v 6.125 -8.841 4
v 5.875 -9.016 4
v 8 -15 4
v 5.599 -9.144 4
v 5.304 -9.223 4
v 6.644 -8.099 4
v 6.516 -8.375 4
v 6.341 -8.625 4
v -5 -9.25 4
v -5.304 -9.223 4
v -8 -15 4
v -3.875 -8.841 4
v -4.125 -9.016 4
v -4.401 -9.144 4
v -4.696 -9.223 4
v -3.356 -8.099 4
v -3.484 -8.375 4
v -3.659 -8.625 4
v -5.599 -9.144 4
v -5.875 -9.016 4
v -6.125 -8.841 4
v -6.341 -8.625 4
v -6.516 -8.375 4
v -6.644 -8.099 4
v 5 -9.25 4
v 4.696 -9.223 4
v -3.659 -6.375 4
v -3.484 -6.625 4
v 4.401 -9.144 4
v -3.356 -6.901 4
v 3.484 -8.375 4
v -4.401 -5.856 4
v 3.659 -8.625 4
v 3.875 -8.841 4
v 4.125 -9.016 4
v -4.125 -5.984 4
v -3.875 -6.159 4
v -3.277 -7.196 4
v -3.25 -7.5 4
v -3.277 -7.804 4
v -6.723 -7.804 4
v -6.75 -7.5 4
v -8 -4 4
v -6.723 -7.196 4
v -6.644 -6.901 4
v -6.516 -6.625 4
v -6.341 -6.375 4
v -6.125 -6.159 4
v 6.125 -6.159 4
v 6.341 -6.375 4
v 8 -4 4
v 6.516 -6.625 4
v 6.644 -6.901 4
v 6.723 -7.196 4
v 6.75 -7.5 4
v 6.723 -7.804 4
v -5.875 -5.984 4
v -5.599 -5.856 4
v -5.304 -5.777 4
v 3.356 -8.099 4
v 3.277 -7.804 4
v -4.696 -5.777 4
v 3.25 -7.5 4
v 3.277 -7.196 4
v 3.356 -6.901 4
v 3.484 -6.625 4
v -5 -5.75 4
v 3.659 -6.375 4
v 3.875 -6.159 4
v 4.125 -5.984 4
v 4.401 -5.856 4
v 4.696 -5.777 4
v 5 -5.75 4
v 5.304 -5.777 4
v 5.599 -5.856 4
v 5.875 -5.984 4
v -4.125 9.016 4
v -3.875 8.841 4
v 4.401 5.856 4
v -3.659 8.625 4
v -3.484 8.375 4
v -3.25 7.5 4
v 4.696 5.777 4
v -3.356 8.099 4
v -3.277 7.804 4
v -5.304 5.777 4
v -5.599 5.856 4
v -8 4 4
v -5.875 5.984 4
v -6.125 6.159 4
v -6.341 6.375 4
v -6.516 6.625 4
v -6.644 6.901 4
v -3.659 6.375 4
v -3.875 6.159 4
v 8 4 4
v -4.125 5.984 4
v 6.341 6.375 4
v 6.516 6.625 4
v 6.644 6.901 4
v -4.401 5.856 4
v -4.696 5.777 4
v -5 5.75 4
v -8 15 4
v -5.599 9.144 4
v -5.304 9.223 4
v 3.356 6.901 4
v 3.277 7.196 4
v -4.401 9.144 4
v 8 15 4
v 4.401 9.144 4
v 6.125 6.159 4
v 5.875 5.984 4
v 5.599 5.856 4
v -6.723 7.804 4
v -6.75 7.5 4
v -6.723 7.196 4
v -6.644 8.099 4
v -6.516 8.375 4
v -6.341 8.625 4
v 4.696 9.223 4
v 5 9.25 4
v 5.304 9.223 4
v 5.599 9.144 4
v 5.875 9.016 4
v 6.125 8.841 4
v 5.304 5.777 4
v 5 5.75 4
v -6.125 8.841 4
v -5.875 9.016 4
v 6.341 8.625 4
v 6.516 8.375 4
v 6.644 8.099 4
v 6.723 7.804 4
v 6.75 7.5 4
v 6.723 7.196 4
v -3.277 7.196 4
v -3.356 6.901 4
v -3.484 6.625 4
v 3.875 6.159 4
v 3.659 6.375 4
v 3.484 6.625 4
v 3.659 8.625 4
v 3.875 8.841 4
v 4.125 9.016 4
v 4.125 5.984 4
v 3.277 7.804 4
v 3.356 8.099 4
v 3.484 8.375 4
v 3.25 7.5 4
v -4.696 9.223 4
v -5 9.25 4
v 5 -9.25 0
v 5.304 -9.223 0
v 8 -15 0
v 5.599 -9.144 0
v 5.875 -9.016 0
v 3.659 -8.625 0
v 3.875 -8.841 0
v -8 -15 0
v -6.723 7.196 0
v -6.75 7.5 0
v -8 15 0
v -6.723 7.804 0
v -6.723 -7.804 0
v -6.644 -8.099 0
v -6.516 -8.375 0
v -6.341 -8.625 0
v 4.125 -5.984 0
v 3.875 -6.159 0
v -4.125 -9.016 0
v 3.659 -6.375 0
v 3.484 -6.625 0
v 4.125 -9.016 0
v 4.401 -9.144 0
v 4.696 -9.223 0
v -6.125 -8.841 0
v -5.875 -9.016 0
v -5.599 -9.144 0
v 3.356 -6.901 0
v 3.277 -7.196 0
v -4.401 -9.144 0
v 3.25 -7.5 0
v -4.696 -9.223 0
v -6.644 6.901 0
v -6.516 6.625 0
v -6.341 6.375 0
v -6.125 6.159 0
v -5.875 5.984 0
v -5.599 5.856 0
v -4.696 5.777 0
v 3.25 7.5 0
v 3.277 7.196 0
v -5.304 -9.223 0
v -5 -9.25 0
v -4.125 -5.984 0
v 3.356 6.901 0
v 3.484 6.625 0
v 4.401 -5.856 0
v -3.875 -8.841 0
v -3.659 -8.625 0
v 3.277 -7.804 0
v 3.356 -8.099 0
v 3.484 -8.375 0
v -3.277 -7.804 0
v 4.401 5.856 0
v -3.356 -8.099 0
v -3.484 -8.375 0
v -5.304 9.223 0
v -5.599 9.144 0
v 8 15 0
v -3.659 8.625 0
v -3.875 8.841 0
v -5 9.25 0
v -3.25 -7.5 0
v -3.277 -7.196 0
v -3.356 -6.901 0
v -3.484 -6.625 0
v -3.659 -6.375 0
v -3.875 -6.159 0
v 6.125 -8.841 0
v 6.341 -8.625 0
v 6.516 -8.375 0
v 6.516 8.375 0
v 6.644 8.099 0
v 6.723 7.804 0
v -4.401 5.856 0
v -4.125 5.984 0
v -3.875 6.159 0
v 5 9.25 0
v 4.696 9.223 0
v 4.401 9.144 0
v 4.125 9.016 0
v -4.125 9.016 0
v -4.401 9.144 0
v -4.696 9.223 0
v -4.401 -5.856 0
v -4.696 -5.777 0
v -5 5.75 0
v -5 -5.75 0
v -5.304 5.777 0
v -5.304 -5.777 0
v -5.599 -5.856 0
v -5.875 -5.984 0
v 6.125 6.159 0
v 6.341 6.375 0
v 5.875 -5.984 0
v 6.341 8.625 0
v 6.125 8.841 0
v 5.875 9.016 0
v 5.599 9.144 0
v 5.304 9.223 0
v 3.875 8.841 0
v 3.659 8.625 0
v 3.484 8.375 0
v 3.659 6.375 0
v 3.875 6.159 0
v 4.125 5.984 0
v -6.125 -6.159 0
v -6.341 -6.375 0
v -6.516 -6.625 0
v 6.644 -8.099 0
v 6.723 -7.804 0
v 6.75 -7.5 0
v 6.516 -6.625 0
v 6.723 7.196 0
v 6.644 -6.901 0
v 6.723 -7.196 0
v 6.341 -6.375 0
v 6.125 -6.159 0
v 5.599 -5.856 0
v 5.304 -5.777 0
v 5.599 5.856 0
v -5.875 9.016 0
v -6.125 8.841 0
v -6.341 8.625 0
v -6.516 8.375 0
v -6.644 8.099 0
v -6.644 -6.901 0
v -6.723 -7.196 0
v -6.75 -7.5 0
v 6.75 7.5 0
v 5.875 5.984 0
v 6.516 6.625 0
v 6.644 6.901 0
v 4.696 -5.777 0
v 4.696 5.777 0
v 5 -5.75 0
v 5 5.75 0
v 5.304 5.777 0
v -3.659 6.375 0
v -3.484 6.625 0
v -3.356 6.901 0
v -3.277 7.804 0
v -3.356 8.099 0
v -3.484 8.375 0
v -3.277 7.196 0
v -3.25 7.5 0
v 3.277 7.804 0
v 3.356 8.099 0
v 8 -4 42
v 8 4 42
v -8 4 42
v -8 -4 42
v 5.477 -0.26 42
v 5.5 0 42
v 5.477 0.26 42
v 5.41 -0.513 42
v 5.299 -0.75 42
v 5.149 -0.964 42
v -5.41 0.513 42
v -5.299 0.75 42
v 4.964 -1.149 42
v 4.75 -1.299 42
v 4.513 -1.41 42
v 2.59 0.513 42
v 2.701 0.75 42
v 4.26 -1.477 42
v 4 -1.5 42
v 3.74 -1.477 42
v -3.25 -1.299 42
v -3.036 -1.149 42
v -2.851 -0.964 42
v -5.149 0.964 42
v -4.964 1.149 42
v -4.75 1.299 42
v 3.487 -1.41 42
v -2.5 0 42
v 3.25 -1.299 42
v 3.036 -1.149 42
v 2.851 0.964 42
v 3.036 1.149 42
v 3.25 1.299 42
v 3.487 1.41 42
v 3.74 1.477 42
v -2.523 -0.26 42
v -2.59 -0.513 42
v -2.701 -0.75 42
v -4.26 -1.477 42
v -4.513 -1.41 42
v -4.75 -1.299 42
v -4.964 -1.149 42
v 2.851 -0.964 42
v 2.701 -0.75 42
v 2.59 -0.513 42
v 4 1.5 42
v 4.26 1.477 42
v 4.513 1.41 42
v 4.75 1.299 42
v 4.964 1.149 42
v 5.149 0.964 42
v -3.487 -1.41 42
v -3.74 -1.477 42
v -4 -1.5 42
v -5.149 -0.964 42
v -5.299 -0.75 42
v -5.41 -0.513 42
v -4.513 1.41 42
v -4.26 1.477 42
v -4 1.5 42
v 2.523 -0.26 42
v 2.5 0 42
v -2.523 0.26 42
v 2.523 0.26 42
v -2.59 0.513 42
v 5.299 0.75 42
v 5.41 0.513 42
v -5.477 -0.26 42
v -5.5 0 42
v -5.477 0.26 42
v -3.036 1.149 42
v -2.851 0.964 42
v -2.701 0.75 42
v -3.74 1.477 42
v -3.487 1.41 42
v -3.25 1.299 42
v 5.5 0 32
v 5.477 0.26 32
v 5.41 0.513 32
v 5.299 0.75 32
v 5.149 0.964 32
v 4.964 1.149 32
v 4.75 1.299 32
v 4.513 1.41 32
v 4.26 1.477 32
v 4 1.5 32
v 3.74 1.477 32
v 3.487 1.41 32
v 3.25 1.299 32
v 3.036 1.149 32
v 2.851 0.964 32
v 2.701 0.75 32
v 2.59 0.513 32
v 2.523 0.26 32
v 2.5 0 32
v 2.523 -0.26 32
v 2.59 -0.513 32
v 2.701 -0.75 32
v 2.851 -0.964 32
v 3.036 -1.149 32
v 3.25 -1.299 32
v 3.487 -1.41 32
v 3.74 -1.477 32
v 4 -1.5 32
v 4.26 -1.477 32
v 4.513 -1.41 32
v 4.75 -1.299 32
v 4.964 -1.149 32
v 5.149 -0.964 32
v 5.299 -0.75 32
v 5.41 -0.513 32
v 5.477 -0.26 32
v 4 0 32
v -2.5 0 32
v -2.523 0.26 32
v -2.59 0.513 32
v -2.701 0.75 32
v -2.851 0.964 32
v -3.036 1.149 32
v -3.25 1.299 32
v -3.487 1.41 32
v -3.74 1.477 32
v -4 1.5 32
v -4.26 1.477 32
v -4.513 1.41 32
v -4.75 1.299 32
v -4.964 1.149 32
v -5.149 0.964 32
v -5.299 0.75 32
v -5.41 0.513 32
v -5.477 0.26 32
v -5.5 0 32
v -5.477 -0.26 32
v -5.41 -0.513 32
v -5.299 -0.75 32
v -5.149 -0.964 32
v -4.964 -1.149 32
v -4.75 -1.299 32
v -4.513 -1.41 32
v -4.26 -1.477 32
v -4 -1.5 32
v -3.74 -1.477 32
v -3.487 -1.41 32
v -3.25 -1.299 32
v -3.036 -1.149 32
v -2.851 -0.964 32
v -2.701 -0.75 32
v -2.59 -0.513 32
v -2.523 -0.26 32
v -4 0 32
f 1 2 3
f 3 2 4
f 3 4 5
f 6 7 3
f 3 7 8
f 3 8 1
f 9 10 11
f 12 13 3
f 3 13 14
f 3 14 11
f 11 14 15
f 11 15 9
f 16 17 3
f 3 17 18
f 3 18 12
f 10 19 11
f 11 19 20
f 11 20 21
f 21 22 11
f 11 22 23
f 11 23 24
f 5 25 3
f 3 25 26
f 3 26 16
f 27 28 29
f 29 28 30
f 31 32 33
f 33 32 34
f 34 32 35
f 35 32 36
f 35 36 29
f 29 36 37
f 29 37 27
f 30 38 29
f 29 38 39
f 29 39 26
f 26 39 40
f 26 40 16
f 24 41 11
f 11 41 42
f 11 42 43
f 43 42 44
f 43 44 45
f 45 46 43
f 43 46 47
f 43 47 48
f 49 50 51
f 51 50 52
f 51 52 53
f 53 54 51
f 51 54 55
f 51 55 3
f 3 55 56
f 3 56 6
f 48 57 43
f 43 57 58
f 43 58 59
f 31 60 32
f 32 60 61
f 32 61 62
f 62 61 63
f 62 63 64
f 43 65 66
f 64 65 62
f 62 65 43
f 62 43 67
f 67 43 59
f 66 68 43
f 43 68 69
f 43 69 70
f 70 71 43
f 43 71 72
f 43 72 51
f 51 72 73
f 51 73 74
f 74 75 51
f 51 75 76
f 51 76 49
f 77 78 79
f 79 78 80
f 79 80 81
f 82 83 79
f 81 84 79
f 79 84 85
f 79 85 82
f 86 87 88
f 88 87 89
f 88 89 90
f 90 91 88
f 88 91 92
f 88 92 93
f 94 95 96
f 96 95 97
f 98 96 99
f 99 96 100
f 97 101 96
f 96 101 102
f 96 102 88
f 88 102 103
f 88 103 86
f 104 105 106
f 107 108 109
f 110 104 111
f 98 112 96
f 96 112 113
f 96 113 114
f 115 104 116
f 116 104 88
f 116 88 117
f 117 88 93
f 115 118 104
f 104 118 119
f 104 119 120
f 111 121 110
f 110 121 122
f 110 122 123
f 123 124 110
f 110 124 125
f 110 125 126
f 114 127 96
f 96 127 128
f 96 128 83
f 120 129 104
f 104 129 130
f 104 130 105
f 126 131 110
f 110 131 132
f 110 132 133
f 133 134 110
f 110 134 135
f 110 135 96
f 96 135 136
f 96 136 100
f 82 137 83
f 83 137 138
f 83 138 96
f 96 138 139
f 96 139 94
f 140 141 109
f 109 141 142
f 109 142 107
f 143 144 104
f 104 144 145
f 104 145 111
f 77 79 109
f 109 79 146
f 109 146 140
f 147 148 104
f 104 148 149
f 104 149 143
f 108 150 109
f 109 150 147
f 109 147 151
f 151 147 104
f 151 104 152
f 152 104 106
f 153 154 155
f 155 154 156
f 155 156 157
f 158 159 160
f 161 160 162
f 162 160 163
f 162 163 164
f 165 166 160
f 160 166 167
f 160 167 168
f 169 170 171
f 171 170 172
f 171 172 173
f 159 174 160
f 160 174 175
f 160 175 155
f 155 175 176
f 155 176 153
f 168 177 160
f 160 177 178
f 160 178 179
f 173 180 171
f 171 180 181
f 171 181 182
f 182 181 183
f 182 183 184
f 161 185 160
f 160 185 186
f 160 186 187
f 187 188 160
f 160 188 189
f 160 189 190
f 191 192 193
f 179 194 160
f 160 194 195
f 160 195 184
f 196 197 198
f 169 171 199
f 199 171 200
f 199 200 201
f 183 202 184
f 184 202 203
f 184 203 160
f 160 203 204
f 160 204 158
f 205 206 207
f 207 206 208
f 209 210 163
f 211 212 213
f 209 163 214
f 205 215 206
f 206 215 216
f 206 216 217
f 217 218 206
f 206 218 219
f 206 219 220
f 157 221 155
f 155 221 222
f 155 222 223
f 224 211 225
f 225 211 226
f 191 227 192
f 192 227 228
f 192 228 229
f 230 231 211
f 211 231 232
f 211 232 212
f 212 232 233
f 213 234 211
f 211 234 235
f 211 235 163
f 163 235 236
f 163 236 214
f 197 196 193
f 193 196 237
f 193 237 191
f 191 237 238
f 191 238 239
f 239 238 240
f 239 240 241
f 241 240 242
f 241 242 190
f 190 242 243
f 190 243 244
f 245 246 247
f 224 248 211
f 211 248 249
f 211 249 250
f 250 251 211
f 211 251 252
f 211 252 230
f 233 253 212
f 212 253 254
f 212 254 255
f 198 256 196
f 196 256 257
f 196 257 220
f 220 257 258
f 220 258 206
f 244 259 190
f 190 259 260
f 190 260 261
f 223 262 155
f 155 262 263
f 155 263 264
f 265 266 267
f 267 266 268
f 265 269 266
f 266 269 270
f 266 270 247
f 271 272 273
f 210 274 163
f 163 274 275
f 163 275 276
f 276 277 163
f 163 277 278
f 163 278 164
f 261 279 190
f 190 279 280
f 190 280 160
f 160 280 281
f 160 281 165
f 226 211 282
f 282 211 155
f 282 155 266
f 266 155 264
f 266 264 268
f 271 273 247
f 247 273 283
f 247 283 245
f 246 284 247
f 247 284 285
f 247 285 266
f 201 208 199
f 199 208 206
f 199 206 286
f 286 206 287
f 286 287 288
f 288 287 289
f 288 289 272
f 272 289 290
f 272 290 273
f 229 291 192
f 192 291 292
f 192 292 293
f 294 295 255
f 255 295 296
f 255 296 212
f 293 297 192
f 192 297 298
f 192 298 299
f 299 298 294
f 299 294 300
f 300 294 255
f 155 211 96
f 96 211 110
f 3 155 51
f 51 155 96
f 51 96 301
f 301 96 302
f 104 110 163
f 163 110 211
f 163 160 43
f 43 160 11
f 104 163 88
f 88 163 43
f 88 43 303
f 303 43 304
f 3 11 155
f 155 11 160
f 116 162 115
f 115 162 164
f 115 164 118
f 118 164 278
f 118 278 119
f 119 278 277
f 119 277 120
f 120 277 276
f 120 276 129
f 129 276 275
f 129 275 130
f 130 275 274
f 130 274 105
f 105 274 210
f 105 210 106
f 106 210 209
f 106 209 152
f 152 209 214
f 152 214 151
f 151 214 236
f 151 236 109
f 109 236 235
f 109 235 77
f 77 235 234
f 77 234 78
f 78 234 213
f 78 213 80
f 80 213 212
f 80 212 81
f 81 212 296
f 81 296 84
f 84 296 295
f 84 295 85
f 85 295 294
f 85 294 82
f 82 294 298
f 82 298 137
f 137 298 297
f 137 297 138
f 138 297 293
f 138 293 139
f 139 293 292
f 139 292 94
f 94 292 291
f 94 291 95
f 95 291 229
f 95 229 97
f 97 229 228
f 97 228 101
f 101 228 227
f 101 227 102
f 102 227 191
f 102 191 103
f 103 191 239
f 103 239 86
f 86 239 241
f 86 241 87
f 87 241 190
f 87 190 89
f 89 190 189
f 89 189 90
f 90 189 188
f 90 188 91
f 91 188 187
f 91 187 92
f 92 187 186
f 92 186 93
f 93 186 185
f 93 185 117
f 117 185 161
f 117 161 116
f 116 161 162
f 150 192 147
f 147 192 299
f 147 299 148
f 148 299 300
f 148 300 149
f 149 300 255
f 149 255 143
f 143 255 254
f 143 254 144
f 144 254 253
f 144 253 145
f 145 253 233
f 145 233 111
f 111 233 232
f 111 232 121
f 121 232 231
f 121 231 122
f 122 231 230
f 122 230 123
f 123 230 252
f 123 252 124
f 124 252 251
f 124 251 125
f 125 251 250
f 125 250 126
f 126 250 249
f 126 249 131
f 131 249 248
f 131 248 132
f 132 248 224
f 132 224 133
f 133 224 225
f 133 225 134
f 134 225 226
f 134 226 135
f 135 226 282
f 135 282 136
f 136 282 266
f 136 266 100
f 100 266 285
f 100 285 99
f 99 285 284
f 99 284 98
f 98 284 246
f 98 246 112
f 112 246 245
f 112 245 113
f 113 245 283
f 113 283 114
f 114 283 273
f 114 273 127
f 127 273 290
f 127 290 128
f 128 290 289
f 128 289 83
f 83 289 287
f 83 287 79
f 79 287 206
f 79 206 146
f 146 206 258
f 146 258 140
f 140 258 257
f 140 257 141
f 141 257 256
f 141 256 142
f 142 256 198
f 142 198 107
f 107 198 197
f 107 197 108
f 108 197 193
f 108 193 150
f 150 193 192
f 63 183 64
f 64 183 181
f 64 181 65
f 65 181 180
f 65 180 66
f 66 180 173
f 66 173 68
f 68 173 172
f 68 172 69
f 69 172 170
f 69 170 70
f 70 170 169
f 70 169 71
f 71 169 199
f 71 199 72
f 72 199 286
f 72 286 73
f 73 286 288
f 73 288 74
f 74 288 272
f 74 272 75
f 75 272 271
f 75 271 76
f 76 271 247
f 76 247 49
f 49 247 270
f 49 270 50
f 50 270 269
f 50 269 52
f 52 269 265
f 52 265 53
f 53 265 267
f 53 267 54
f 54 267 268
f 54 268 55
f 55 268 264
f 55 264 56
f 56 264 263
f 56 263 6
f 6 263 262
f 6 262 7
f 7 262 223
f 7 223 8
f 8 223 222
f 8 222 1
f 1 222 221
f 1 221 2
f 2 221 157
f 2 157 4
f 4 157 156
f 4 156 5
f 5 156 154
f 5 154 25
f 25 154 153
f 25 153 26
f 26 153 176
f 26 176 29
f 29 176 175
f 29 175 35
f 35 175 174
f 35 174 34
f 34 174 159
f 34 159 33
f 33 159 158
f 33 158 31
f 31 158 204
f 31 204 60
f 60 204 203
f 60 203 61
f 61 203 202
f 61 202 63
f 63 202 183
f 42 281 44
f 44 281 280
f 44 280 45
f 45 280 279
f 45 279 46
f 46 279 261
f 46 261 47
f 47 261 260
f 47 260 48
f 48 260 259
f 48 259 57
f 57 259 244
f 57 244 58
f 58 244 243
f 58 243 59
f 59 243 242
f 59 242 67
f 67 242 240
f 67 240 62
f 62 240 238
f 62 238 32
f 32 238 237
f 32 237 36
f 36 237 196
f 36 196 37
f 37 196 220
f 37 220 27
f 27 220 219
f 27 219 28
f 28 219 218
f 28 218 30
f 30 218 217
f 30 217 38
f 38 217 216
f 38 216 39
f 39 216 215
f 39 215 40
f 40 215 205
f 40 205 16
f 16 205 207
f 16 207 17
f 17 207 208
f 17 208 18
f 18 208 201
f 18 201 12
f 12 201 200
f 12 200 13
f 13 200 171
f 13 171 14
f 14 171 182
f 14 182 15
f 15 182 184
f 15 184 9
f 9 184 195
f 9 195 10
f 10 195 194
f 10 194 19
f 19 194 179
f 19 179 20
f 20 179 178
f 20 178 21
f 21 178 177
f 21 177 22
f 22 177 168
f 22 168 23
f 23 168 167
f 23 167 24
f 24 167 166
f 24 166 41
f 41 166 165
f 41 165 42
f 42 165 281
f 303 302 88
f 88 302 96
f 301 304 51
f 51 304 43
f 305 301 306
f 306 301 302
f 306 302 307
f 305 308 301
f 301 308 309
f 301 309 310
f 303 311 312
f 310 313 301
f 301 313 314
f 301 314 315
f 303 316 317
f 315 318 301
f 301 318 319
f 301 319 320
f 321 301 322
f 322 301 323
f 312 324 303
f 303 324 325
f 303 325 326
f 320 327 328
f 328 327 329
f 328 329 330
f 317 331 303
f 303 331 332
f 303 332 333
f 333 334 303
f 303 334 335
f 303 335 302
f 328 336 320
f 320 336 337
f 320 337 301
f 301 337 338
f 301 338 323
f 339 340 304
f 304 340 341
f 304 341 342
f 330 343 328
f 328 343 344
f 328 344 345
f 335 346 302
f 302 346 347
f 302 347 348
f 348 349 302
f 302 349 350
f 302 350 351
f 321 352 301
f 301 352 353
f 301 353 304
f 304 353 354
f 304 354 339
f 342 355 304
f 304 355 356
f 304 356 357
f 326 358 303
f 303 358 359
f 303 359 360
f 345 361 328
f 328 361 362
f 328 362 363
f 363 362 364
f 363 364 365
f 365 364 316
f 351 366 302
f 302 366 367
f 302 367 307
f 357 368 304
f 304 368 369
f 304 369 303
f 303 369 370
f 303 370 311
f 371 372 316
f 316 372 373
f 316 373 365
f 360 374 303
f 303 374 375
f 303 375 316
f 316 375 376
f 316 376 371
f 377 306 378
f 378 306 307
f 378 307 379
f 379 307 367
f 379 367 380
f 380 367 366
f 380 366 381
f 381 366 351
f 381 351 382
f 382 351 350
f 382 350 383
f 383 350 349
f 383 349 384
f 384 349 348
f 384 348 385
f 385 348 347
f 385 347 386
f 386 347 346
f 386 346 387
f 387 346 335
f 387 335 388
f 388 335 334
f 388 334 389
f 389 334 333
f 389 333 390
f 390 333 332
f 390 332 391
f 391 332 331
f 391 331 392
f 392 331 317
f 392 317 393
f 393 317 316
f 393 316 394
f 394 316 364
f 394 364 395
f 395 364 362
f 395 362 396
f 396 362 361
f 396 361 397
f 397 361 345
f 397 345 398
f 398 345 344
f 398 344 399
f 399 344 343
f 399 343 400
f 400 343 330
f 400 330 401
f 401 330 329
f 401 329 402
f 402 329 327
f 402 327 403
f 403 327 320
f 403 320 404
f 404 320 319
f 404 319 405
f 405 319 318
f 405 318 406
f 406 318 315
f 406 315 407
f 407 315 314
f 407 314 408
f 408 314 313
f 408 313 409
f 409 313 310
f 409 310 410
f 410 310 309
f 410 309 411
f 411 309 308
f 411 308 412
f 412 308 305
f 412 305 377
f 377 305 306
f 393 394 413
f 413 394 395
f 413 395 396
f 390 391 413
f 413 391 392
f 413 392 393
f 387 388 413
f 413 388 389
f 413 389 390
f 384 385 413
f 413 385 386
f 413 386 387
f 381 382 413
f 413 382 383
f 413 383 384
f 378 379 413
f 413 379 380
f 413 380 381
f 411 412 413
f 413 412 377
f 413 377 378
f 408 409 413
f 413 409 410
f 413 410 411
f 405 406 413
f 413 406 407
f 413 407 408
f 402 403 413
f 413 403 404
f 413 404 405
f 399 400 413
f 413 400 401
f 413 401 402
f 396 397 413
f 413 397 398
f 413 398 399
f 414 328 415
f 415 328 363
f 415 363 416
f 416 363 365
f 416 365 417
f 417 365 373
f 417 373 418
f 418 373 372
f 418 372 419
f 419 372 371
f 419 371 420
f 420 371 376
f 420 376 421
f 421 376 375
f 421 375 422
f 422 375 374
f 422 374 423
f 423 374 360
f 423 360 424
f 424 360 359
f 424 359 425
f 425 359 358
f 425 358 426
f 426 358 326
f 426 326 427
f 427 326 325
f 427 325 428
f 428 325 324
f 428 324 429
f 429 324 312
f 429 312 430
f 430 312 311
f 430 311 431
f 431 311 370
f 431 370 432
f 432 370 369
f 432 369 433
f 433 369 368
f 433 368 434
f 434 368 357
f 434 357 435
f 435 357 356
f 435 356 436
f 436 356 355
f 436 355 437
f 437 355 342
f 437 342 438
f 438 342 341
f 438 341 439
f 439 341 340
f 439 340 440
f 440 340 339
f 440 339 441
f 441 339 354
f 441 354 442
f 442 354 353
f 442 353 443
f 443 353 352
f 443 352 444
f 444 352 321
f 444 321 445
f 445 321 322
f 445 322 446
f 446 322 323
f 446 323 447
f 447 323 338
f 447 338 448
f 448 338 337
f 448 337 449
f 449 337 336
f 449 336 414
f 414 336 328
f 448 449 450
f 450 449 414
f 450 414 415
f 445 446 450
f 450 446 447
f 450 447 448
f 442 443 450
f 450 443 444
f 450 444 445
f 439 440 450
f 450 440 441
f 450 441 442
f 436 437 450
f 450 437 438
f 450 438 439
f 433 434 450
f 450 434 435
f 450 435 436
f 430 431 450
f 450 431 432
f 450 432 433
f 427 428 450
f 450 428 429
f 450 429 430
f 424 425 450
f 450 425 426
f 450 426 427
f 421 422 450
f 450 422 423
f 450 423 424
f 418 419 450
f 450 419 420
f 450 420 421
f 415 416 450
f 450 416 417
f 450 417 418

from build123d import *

# Parameters (mm, degrees)
SKETCH_1_W          = 16
SKETCH_1_H          = 30
SKETCH_1_R          = 1.75
EXTRUDE_3_DEPTH     = 4
SKETCH_4_W          = 16
SKETCH_4_H          = 8
EXTRUDE_4_DEPTH     = 38
SKETCH_6_R          = 1.5
CUT_EXTRUDE_1_DEPTH = 10


with BuildPart() as part:
    # 草图1 → 凸台-拉伸3 (new body)
    with BuildSketch(Plane.XY):
        Rectangle(SKETCH_1_W, SKETCH_1_H)
        with Locations((-5, 7.5)):
            Circle(SKETCH_1_R, mode=Mode.SUBTRACT)
        with Locations(Location((5, 7.5, 0), (0, 0, 180))):
            Circle(SKETCH_1_R, mode=Mode.SUBTRACT)
        with Locations((5, -7.5)):
            Circle(SKETCH_1_R, mode=Mode.SUBTRACT)
        with Locations(Location((-5, -7.5, 0), (0, 0, 180))):
            Circle(SKETCH_1_R, mode=Mode.SUBTRACT)
    extrude(amount=EXTRUDE_3_DEPTH)

    # 草图4 → 凸台-拉伸4 (add)
    with BuildSketch(Plane.XY.offset(4)):
        Rectangle(SKETCH_4_W, SKETCH_4_H)
    extrude(amount=EXTRUDE_4_DEPTH)

    # 草图6 → 切除-拉伸1 (cut)
    with BuildSketch(Plane.XY.offset(42)):
        with Locations((-4, 0)):
            Circle(SKETCH_6_R)
        with Locations(Location((4, 0, 0), (0, 0, 180))):
            Circle(SKETCH_6_R)
    extrude(amount=-CUT_EXTRUDE_1_DEPTH, mode=Mode.SUBTRACT)


solid = part.part
